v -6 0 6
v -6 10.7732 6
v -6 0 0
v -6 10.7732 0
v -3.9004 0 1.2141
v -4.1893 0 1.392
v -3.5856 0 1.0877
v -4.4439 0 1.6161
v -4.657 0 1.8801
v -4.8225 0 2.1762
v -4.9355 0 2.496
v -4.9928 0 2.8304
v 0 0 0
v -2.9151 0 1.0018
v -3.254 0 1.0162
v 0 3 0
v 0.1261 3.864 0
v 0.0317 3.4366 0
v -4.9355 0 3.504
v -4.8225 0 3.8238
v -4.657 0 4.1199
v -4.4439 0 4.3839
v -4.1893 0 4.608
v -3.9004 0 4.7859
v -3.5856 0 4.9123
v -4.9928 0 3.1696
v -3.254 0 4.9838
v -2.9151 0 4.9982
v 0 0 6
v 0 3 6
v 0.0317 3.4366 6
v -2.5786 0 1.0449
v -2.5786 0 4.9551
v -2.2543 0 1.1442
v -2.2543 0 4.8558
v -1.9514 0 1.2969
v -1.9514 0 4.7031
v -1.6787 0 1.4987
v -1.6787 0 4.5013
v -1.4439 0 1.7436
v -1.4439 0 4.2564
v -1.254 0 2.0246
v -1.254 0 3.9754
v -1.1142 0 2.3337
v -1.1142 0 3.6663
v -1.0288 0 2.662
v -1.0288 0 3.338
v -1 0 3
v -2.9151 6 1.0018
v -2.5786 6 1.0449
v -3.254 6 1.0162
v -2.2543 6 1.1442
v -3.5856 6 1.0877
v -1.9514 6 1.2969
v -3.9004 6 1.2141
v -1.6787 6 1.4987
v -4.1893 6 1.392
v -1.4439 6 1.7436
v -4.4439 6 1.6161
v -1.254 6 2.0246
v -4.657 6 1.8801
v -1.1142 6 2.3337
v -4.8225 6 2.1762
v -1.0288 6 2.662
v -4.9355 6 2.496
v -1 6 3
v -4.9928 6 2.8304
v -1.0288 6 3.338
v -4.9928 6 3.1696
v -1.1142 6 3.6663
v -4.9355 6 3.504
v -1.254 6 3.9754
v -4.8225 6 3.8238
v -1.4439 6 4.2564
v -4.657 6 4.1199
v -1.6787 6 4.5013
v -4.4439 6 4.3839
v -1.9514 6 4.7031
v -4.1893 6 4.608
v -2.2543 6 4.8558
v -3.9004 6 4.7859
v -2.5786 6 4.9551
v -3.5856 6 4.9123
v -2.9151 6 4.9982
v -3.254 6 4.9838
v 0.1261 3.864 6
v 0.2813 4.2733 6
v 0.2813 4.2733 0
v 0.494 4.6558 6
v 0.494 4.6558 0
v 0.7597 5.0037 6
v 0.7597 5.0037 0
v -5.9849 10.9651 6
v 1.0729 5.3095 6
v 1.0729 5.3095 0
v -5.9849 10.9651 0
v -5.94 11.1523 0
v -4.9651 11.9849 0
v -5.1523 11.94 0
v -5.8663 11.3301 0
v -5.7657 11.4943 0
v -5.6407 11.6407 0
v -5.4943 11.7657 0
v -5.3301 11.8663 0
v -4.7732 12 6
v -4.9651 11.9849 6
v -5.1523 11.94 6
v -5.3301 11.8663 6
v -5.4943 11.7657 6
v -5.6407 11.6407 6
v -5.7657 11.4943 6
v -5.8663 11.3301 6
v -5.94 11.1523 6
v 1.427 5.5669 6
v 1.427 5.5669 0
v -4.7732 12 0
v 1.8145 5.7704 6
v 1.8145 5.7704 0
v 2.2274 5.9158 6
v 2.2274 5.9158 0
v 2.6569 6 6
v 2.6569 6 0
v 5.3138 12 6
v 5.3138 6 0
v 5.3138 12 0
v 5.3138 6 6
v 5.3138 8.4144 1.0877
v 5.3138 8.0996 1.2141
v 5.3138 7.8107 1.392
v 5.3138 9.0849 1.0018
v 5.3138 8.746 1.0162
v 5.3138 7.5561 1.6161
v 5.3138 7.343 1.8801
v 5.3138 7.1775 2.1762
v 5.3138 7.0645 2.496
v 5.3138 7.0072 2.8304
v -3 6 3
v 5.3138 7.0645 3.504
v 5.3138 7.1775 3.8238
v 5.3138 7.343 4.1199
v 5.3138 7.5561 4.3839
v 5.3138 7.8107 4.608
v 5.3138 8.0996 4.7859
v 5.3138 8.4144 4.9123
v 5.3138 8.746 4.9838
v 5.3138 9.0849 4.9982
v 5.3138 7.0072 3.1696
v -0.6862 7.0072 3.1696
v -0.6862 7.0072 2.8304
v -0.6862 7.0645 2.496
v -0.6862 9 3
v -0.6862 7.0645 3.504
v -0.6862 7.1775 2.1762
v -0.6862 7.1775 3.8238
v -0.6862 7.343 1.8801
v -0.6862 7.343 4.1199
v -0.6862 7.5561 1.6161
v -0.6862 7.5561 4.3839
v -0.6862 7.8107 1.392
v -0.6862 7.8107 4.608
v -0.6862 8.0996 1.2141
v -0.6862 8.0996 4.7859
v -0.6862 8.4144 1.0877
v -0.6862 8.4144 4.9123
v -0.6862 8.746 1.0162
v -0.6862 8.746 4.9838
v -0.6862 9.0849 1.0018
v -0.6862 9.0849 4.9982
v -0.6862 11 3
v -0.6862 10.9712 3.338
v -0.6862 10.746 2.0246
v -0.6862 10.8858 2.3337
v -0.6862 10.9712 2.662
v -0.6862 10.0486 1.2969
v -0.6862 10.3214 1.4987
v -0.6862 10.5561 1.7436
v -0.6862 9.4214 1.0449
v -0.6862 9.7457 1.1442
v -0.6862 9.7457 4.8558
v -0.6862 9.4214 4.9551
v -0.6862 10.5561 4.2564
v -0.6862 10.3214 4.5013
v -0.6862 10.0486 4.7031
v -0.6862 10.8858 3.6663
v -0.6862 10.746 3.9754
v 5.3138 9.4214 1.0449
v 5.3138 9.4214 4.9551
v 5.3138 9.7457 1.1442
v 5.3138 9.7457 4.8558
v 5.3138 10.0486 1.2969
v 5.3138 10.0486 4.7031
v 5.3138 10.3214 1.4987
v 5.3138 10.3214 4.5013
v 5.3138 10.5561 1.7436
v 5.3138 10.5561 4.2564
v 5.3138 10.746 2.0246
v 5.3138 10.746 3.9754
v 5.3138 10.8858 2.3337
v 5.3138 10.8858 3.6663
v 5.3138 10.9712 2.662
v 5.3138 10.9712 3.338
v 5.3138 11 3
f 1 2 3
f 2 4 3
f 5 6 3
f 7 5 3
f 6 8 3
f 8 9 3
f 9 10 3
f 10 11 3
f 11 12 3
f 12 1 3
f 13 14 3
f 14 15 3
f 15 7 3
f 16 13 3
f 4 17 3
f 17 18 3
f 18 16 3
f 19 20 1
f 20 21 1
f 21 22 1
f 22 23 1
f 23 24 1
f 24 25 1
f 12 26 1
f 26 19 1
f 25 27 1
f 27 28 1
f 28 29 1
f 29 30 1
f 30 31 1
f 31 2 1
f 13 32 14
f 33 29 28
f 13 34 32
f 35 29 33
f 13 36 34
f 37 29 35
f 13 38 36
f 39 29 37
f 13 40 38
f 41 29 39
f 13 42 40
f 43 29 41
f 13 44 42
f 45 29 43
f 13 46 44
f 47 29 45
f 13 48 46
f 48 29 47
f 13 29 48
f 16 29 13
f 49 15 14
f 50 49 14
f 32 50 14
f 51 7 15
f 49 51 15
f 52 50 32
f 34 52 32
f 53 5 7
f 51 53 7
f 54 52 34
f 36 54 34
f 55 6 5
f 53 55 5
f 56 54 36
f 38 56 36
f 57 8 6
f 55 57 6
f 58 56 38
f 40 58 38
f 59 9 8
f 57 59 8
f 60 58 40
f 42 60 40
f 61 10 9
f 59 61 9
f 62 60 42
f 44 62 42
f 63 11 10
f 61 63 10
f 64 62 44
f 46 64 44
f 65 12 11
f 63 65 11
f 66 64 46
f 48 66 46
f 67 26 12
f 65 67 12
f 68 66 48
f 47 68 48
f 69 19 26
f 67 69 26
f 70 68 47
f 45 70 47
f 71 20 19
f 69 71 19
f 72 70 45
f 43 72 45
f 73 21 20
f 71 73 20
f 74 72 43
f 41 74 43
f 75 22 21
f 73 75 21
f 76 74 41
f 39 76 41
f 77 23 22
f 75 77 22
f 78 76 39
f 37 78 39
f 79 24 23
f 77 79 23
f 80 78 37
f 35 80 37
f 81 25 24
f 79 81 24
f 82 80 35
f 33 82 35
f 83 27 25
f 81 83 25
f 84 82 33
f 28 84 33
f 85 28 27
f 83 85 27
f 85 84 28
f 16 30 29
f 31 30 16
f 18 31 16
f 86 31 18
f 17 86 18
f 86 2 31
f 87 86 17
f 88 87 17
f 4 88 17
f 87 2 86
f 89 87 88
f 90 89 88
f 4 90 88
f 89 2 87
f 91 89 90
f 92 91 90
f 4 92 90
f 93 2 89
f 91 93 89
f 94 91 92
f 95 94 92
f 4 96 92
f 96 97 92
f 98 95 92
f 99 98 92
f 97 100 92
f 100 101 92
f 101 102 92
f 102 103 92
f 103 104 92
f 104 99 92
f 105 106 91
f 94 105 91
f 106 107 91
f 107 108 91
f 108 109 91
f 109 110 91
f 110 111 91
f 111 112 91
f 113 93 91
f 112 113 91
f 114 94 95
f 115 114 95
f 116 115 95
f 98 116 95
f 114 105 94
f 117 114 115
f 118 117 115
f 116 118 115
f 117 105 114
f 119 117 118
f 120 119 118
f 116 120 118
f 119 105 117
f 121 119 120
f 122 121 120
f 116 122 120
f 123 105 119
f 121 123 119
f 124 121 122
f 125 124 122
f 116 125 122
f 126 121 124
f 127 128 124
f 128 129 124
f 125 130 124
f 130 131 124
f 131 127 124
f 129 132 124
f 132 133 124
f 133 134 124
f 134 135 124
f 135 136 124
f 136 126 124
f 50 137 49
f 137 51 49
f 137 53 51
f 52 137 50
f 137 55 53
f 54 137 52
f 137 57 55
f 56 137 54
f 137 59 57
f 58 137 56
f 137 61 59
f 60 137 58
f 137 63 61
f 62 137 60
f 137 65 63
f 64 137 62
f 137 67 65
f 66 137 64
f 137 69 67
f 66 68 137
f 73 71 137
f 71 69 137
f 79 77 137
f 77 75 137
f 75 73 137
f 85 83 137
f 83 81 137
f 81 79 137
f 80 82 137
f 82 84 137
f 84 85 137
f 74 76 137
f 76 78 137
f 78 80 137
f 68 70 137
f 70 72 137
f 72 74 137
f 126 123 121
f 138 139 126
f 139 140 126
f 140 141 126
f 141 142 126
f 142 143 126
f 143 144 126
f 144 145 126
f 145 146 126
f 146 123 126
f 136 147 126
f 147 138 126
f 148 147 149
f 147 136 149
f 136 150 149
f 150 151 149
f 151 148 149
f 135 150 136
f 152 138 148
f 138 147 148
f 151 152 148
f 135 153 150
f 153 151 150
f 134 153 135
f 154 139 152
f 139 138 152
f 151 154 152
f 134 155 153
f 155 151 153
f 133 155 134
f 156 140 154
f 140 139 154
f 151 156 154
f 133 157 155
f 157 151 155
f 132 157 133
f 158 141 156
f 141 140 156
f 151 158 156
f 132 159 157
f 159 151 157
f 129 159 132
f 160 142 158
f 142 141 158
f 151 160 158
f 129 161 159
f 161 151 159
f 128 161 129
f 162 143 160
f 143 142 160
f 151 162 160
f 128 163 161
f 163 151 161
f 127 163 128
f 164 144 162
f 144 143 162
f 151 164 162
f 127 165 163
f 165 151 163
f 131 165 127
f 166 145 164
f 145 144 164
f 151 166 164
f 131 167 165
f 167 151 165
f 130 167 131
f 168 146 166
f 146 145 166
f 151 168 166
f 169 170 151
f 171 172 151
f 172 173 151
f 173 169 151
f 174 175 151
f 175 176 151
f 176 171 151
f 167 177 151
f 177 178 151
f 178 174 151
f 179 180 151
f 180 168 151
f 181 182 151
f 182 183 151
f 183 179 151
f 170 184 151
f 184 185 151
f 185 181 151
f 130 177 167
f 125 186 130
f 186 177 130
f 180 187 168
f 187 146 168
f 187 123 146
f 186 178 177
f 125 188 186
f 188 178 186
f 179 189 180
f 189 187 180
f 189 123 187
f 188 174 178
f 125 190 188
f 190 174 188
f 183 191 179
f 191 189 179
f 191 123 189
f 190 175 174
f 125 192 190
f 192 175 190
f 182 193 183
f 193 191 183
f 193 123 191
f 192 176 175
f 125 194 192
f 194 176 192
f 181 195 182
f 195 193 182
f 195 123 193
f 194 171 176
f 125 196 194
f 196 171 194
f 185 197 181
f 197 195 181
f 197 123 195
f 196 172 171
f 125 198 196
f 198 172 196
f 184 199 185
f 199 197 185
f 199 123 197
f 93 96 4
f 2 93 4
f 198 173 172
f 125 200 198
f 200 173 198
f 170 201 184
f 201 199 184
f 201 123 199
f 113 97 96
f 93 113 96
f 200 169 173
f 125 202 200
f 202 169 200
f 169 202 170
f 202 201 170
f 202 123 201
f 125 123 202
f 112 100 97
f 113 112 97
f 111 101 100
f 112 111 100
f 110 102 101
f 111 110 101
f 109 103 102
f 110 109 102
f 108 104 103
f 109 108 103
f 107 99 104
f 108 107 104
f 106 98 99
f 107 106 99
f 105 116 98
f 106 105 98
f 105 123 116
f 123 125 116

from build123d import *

# Parameters (mm, degrees)
BOSS_EXTRUDE2_DEPTH = 6
CUT_EXTRUDE6_DEPTH  = 6
CUT_EXTRUDE7_DEPTH  = 6


with BuildPart() as part:
    # Sketch1 → Boss-Extrude2 (new body)
    with BuildSketch(Plane.XY):
        with BuildLine():
            Line((-4.773172478, 12), (5.313782991, 12))
            Line((5.313782991, 12), (5.313782991, 6))
            Line((5.313782991, 6), (2.656891496, 6))
            ThreePointArc((2.656891496, 6), (0.759711241, 5.003688625), (0, 3))
            Line((0, 3), (0, 0))
            Line((0, 0), (-6, 0))
            Line((-6, 0), (-6, 10.773172478))
            ThreePointArc((-6, 10.773172478), (-5.640670538, 11.640670538), (-4.773172478, 12))
        make_face()
    extrude(amount=BOSS_EXTRUDE2_DEPTH)

    # Sketch5 → Cut-Extrude6 (cut)
    with BuildSketch(Plane(origin=(5.313782991, 0, 0), x_dir=(0, 0, -1), z_dir=(1, 0, 0))):
        with BuildLine():
            ThreePointArc((-1.585786438, 10.414213562), (-4.414213562, 10.414213562), (-4.414213562, 7.585786438))
            Line((-4.414213562, 7.585786438), (-1.585786438, 10.414213562))
        make_face()
        with BuildLine():
            Line((-1.585786438, 10.414213562), (-4.414213562, 7.585786438))
            ThreePointArc((-4.414213562, 7.585786438), (-2.234633135, 7.152240935), (-1, 9))
            ThreePointArc((-1, 9), (-1.152240935, 9.765366865), (-1.585786438, 10.414213562))
        make_face()
    extrude(amount=-CUT_EXTRUDE6_DEPTH, mode=Mode.SUBTRACT)

    # Sketch6 → Cut-Extrude7 (cut)
    with BuildSketch(Plane.XZ):
        with BuildLine():
            ThreePointArc((-1.585786438, 4.414213562), (-4.414213562, 4.414213562), (-4.414213562, 1.585786438))
            Line((-4.414213562, 1.585786438), (-1.585786438, 4.414213562))
        make_face()
        with BuildLine():
            Line((-1.585786438, 4.414213562), (-4.414213562, 1.585786438))
            ThreePointArc((-4.414213562, 1.585786438), (-2.234633135, 1.152240935), (-1, 3))
            ThreePointArc((-1, 3), (-1.152240935, 3.765366865), (-1.585786438, 4.414213562))
        make_face()
    extrude(amount=-CUT_EXTRUDE7_DEPTH, mode=Mode.SUBTRACT)


solid = part.part
